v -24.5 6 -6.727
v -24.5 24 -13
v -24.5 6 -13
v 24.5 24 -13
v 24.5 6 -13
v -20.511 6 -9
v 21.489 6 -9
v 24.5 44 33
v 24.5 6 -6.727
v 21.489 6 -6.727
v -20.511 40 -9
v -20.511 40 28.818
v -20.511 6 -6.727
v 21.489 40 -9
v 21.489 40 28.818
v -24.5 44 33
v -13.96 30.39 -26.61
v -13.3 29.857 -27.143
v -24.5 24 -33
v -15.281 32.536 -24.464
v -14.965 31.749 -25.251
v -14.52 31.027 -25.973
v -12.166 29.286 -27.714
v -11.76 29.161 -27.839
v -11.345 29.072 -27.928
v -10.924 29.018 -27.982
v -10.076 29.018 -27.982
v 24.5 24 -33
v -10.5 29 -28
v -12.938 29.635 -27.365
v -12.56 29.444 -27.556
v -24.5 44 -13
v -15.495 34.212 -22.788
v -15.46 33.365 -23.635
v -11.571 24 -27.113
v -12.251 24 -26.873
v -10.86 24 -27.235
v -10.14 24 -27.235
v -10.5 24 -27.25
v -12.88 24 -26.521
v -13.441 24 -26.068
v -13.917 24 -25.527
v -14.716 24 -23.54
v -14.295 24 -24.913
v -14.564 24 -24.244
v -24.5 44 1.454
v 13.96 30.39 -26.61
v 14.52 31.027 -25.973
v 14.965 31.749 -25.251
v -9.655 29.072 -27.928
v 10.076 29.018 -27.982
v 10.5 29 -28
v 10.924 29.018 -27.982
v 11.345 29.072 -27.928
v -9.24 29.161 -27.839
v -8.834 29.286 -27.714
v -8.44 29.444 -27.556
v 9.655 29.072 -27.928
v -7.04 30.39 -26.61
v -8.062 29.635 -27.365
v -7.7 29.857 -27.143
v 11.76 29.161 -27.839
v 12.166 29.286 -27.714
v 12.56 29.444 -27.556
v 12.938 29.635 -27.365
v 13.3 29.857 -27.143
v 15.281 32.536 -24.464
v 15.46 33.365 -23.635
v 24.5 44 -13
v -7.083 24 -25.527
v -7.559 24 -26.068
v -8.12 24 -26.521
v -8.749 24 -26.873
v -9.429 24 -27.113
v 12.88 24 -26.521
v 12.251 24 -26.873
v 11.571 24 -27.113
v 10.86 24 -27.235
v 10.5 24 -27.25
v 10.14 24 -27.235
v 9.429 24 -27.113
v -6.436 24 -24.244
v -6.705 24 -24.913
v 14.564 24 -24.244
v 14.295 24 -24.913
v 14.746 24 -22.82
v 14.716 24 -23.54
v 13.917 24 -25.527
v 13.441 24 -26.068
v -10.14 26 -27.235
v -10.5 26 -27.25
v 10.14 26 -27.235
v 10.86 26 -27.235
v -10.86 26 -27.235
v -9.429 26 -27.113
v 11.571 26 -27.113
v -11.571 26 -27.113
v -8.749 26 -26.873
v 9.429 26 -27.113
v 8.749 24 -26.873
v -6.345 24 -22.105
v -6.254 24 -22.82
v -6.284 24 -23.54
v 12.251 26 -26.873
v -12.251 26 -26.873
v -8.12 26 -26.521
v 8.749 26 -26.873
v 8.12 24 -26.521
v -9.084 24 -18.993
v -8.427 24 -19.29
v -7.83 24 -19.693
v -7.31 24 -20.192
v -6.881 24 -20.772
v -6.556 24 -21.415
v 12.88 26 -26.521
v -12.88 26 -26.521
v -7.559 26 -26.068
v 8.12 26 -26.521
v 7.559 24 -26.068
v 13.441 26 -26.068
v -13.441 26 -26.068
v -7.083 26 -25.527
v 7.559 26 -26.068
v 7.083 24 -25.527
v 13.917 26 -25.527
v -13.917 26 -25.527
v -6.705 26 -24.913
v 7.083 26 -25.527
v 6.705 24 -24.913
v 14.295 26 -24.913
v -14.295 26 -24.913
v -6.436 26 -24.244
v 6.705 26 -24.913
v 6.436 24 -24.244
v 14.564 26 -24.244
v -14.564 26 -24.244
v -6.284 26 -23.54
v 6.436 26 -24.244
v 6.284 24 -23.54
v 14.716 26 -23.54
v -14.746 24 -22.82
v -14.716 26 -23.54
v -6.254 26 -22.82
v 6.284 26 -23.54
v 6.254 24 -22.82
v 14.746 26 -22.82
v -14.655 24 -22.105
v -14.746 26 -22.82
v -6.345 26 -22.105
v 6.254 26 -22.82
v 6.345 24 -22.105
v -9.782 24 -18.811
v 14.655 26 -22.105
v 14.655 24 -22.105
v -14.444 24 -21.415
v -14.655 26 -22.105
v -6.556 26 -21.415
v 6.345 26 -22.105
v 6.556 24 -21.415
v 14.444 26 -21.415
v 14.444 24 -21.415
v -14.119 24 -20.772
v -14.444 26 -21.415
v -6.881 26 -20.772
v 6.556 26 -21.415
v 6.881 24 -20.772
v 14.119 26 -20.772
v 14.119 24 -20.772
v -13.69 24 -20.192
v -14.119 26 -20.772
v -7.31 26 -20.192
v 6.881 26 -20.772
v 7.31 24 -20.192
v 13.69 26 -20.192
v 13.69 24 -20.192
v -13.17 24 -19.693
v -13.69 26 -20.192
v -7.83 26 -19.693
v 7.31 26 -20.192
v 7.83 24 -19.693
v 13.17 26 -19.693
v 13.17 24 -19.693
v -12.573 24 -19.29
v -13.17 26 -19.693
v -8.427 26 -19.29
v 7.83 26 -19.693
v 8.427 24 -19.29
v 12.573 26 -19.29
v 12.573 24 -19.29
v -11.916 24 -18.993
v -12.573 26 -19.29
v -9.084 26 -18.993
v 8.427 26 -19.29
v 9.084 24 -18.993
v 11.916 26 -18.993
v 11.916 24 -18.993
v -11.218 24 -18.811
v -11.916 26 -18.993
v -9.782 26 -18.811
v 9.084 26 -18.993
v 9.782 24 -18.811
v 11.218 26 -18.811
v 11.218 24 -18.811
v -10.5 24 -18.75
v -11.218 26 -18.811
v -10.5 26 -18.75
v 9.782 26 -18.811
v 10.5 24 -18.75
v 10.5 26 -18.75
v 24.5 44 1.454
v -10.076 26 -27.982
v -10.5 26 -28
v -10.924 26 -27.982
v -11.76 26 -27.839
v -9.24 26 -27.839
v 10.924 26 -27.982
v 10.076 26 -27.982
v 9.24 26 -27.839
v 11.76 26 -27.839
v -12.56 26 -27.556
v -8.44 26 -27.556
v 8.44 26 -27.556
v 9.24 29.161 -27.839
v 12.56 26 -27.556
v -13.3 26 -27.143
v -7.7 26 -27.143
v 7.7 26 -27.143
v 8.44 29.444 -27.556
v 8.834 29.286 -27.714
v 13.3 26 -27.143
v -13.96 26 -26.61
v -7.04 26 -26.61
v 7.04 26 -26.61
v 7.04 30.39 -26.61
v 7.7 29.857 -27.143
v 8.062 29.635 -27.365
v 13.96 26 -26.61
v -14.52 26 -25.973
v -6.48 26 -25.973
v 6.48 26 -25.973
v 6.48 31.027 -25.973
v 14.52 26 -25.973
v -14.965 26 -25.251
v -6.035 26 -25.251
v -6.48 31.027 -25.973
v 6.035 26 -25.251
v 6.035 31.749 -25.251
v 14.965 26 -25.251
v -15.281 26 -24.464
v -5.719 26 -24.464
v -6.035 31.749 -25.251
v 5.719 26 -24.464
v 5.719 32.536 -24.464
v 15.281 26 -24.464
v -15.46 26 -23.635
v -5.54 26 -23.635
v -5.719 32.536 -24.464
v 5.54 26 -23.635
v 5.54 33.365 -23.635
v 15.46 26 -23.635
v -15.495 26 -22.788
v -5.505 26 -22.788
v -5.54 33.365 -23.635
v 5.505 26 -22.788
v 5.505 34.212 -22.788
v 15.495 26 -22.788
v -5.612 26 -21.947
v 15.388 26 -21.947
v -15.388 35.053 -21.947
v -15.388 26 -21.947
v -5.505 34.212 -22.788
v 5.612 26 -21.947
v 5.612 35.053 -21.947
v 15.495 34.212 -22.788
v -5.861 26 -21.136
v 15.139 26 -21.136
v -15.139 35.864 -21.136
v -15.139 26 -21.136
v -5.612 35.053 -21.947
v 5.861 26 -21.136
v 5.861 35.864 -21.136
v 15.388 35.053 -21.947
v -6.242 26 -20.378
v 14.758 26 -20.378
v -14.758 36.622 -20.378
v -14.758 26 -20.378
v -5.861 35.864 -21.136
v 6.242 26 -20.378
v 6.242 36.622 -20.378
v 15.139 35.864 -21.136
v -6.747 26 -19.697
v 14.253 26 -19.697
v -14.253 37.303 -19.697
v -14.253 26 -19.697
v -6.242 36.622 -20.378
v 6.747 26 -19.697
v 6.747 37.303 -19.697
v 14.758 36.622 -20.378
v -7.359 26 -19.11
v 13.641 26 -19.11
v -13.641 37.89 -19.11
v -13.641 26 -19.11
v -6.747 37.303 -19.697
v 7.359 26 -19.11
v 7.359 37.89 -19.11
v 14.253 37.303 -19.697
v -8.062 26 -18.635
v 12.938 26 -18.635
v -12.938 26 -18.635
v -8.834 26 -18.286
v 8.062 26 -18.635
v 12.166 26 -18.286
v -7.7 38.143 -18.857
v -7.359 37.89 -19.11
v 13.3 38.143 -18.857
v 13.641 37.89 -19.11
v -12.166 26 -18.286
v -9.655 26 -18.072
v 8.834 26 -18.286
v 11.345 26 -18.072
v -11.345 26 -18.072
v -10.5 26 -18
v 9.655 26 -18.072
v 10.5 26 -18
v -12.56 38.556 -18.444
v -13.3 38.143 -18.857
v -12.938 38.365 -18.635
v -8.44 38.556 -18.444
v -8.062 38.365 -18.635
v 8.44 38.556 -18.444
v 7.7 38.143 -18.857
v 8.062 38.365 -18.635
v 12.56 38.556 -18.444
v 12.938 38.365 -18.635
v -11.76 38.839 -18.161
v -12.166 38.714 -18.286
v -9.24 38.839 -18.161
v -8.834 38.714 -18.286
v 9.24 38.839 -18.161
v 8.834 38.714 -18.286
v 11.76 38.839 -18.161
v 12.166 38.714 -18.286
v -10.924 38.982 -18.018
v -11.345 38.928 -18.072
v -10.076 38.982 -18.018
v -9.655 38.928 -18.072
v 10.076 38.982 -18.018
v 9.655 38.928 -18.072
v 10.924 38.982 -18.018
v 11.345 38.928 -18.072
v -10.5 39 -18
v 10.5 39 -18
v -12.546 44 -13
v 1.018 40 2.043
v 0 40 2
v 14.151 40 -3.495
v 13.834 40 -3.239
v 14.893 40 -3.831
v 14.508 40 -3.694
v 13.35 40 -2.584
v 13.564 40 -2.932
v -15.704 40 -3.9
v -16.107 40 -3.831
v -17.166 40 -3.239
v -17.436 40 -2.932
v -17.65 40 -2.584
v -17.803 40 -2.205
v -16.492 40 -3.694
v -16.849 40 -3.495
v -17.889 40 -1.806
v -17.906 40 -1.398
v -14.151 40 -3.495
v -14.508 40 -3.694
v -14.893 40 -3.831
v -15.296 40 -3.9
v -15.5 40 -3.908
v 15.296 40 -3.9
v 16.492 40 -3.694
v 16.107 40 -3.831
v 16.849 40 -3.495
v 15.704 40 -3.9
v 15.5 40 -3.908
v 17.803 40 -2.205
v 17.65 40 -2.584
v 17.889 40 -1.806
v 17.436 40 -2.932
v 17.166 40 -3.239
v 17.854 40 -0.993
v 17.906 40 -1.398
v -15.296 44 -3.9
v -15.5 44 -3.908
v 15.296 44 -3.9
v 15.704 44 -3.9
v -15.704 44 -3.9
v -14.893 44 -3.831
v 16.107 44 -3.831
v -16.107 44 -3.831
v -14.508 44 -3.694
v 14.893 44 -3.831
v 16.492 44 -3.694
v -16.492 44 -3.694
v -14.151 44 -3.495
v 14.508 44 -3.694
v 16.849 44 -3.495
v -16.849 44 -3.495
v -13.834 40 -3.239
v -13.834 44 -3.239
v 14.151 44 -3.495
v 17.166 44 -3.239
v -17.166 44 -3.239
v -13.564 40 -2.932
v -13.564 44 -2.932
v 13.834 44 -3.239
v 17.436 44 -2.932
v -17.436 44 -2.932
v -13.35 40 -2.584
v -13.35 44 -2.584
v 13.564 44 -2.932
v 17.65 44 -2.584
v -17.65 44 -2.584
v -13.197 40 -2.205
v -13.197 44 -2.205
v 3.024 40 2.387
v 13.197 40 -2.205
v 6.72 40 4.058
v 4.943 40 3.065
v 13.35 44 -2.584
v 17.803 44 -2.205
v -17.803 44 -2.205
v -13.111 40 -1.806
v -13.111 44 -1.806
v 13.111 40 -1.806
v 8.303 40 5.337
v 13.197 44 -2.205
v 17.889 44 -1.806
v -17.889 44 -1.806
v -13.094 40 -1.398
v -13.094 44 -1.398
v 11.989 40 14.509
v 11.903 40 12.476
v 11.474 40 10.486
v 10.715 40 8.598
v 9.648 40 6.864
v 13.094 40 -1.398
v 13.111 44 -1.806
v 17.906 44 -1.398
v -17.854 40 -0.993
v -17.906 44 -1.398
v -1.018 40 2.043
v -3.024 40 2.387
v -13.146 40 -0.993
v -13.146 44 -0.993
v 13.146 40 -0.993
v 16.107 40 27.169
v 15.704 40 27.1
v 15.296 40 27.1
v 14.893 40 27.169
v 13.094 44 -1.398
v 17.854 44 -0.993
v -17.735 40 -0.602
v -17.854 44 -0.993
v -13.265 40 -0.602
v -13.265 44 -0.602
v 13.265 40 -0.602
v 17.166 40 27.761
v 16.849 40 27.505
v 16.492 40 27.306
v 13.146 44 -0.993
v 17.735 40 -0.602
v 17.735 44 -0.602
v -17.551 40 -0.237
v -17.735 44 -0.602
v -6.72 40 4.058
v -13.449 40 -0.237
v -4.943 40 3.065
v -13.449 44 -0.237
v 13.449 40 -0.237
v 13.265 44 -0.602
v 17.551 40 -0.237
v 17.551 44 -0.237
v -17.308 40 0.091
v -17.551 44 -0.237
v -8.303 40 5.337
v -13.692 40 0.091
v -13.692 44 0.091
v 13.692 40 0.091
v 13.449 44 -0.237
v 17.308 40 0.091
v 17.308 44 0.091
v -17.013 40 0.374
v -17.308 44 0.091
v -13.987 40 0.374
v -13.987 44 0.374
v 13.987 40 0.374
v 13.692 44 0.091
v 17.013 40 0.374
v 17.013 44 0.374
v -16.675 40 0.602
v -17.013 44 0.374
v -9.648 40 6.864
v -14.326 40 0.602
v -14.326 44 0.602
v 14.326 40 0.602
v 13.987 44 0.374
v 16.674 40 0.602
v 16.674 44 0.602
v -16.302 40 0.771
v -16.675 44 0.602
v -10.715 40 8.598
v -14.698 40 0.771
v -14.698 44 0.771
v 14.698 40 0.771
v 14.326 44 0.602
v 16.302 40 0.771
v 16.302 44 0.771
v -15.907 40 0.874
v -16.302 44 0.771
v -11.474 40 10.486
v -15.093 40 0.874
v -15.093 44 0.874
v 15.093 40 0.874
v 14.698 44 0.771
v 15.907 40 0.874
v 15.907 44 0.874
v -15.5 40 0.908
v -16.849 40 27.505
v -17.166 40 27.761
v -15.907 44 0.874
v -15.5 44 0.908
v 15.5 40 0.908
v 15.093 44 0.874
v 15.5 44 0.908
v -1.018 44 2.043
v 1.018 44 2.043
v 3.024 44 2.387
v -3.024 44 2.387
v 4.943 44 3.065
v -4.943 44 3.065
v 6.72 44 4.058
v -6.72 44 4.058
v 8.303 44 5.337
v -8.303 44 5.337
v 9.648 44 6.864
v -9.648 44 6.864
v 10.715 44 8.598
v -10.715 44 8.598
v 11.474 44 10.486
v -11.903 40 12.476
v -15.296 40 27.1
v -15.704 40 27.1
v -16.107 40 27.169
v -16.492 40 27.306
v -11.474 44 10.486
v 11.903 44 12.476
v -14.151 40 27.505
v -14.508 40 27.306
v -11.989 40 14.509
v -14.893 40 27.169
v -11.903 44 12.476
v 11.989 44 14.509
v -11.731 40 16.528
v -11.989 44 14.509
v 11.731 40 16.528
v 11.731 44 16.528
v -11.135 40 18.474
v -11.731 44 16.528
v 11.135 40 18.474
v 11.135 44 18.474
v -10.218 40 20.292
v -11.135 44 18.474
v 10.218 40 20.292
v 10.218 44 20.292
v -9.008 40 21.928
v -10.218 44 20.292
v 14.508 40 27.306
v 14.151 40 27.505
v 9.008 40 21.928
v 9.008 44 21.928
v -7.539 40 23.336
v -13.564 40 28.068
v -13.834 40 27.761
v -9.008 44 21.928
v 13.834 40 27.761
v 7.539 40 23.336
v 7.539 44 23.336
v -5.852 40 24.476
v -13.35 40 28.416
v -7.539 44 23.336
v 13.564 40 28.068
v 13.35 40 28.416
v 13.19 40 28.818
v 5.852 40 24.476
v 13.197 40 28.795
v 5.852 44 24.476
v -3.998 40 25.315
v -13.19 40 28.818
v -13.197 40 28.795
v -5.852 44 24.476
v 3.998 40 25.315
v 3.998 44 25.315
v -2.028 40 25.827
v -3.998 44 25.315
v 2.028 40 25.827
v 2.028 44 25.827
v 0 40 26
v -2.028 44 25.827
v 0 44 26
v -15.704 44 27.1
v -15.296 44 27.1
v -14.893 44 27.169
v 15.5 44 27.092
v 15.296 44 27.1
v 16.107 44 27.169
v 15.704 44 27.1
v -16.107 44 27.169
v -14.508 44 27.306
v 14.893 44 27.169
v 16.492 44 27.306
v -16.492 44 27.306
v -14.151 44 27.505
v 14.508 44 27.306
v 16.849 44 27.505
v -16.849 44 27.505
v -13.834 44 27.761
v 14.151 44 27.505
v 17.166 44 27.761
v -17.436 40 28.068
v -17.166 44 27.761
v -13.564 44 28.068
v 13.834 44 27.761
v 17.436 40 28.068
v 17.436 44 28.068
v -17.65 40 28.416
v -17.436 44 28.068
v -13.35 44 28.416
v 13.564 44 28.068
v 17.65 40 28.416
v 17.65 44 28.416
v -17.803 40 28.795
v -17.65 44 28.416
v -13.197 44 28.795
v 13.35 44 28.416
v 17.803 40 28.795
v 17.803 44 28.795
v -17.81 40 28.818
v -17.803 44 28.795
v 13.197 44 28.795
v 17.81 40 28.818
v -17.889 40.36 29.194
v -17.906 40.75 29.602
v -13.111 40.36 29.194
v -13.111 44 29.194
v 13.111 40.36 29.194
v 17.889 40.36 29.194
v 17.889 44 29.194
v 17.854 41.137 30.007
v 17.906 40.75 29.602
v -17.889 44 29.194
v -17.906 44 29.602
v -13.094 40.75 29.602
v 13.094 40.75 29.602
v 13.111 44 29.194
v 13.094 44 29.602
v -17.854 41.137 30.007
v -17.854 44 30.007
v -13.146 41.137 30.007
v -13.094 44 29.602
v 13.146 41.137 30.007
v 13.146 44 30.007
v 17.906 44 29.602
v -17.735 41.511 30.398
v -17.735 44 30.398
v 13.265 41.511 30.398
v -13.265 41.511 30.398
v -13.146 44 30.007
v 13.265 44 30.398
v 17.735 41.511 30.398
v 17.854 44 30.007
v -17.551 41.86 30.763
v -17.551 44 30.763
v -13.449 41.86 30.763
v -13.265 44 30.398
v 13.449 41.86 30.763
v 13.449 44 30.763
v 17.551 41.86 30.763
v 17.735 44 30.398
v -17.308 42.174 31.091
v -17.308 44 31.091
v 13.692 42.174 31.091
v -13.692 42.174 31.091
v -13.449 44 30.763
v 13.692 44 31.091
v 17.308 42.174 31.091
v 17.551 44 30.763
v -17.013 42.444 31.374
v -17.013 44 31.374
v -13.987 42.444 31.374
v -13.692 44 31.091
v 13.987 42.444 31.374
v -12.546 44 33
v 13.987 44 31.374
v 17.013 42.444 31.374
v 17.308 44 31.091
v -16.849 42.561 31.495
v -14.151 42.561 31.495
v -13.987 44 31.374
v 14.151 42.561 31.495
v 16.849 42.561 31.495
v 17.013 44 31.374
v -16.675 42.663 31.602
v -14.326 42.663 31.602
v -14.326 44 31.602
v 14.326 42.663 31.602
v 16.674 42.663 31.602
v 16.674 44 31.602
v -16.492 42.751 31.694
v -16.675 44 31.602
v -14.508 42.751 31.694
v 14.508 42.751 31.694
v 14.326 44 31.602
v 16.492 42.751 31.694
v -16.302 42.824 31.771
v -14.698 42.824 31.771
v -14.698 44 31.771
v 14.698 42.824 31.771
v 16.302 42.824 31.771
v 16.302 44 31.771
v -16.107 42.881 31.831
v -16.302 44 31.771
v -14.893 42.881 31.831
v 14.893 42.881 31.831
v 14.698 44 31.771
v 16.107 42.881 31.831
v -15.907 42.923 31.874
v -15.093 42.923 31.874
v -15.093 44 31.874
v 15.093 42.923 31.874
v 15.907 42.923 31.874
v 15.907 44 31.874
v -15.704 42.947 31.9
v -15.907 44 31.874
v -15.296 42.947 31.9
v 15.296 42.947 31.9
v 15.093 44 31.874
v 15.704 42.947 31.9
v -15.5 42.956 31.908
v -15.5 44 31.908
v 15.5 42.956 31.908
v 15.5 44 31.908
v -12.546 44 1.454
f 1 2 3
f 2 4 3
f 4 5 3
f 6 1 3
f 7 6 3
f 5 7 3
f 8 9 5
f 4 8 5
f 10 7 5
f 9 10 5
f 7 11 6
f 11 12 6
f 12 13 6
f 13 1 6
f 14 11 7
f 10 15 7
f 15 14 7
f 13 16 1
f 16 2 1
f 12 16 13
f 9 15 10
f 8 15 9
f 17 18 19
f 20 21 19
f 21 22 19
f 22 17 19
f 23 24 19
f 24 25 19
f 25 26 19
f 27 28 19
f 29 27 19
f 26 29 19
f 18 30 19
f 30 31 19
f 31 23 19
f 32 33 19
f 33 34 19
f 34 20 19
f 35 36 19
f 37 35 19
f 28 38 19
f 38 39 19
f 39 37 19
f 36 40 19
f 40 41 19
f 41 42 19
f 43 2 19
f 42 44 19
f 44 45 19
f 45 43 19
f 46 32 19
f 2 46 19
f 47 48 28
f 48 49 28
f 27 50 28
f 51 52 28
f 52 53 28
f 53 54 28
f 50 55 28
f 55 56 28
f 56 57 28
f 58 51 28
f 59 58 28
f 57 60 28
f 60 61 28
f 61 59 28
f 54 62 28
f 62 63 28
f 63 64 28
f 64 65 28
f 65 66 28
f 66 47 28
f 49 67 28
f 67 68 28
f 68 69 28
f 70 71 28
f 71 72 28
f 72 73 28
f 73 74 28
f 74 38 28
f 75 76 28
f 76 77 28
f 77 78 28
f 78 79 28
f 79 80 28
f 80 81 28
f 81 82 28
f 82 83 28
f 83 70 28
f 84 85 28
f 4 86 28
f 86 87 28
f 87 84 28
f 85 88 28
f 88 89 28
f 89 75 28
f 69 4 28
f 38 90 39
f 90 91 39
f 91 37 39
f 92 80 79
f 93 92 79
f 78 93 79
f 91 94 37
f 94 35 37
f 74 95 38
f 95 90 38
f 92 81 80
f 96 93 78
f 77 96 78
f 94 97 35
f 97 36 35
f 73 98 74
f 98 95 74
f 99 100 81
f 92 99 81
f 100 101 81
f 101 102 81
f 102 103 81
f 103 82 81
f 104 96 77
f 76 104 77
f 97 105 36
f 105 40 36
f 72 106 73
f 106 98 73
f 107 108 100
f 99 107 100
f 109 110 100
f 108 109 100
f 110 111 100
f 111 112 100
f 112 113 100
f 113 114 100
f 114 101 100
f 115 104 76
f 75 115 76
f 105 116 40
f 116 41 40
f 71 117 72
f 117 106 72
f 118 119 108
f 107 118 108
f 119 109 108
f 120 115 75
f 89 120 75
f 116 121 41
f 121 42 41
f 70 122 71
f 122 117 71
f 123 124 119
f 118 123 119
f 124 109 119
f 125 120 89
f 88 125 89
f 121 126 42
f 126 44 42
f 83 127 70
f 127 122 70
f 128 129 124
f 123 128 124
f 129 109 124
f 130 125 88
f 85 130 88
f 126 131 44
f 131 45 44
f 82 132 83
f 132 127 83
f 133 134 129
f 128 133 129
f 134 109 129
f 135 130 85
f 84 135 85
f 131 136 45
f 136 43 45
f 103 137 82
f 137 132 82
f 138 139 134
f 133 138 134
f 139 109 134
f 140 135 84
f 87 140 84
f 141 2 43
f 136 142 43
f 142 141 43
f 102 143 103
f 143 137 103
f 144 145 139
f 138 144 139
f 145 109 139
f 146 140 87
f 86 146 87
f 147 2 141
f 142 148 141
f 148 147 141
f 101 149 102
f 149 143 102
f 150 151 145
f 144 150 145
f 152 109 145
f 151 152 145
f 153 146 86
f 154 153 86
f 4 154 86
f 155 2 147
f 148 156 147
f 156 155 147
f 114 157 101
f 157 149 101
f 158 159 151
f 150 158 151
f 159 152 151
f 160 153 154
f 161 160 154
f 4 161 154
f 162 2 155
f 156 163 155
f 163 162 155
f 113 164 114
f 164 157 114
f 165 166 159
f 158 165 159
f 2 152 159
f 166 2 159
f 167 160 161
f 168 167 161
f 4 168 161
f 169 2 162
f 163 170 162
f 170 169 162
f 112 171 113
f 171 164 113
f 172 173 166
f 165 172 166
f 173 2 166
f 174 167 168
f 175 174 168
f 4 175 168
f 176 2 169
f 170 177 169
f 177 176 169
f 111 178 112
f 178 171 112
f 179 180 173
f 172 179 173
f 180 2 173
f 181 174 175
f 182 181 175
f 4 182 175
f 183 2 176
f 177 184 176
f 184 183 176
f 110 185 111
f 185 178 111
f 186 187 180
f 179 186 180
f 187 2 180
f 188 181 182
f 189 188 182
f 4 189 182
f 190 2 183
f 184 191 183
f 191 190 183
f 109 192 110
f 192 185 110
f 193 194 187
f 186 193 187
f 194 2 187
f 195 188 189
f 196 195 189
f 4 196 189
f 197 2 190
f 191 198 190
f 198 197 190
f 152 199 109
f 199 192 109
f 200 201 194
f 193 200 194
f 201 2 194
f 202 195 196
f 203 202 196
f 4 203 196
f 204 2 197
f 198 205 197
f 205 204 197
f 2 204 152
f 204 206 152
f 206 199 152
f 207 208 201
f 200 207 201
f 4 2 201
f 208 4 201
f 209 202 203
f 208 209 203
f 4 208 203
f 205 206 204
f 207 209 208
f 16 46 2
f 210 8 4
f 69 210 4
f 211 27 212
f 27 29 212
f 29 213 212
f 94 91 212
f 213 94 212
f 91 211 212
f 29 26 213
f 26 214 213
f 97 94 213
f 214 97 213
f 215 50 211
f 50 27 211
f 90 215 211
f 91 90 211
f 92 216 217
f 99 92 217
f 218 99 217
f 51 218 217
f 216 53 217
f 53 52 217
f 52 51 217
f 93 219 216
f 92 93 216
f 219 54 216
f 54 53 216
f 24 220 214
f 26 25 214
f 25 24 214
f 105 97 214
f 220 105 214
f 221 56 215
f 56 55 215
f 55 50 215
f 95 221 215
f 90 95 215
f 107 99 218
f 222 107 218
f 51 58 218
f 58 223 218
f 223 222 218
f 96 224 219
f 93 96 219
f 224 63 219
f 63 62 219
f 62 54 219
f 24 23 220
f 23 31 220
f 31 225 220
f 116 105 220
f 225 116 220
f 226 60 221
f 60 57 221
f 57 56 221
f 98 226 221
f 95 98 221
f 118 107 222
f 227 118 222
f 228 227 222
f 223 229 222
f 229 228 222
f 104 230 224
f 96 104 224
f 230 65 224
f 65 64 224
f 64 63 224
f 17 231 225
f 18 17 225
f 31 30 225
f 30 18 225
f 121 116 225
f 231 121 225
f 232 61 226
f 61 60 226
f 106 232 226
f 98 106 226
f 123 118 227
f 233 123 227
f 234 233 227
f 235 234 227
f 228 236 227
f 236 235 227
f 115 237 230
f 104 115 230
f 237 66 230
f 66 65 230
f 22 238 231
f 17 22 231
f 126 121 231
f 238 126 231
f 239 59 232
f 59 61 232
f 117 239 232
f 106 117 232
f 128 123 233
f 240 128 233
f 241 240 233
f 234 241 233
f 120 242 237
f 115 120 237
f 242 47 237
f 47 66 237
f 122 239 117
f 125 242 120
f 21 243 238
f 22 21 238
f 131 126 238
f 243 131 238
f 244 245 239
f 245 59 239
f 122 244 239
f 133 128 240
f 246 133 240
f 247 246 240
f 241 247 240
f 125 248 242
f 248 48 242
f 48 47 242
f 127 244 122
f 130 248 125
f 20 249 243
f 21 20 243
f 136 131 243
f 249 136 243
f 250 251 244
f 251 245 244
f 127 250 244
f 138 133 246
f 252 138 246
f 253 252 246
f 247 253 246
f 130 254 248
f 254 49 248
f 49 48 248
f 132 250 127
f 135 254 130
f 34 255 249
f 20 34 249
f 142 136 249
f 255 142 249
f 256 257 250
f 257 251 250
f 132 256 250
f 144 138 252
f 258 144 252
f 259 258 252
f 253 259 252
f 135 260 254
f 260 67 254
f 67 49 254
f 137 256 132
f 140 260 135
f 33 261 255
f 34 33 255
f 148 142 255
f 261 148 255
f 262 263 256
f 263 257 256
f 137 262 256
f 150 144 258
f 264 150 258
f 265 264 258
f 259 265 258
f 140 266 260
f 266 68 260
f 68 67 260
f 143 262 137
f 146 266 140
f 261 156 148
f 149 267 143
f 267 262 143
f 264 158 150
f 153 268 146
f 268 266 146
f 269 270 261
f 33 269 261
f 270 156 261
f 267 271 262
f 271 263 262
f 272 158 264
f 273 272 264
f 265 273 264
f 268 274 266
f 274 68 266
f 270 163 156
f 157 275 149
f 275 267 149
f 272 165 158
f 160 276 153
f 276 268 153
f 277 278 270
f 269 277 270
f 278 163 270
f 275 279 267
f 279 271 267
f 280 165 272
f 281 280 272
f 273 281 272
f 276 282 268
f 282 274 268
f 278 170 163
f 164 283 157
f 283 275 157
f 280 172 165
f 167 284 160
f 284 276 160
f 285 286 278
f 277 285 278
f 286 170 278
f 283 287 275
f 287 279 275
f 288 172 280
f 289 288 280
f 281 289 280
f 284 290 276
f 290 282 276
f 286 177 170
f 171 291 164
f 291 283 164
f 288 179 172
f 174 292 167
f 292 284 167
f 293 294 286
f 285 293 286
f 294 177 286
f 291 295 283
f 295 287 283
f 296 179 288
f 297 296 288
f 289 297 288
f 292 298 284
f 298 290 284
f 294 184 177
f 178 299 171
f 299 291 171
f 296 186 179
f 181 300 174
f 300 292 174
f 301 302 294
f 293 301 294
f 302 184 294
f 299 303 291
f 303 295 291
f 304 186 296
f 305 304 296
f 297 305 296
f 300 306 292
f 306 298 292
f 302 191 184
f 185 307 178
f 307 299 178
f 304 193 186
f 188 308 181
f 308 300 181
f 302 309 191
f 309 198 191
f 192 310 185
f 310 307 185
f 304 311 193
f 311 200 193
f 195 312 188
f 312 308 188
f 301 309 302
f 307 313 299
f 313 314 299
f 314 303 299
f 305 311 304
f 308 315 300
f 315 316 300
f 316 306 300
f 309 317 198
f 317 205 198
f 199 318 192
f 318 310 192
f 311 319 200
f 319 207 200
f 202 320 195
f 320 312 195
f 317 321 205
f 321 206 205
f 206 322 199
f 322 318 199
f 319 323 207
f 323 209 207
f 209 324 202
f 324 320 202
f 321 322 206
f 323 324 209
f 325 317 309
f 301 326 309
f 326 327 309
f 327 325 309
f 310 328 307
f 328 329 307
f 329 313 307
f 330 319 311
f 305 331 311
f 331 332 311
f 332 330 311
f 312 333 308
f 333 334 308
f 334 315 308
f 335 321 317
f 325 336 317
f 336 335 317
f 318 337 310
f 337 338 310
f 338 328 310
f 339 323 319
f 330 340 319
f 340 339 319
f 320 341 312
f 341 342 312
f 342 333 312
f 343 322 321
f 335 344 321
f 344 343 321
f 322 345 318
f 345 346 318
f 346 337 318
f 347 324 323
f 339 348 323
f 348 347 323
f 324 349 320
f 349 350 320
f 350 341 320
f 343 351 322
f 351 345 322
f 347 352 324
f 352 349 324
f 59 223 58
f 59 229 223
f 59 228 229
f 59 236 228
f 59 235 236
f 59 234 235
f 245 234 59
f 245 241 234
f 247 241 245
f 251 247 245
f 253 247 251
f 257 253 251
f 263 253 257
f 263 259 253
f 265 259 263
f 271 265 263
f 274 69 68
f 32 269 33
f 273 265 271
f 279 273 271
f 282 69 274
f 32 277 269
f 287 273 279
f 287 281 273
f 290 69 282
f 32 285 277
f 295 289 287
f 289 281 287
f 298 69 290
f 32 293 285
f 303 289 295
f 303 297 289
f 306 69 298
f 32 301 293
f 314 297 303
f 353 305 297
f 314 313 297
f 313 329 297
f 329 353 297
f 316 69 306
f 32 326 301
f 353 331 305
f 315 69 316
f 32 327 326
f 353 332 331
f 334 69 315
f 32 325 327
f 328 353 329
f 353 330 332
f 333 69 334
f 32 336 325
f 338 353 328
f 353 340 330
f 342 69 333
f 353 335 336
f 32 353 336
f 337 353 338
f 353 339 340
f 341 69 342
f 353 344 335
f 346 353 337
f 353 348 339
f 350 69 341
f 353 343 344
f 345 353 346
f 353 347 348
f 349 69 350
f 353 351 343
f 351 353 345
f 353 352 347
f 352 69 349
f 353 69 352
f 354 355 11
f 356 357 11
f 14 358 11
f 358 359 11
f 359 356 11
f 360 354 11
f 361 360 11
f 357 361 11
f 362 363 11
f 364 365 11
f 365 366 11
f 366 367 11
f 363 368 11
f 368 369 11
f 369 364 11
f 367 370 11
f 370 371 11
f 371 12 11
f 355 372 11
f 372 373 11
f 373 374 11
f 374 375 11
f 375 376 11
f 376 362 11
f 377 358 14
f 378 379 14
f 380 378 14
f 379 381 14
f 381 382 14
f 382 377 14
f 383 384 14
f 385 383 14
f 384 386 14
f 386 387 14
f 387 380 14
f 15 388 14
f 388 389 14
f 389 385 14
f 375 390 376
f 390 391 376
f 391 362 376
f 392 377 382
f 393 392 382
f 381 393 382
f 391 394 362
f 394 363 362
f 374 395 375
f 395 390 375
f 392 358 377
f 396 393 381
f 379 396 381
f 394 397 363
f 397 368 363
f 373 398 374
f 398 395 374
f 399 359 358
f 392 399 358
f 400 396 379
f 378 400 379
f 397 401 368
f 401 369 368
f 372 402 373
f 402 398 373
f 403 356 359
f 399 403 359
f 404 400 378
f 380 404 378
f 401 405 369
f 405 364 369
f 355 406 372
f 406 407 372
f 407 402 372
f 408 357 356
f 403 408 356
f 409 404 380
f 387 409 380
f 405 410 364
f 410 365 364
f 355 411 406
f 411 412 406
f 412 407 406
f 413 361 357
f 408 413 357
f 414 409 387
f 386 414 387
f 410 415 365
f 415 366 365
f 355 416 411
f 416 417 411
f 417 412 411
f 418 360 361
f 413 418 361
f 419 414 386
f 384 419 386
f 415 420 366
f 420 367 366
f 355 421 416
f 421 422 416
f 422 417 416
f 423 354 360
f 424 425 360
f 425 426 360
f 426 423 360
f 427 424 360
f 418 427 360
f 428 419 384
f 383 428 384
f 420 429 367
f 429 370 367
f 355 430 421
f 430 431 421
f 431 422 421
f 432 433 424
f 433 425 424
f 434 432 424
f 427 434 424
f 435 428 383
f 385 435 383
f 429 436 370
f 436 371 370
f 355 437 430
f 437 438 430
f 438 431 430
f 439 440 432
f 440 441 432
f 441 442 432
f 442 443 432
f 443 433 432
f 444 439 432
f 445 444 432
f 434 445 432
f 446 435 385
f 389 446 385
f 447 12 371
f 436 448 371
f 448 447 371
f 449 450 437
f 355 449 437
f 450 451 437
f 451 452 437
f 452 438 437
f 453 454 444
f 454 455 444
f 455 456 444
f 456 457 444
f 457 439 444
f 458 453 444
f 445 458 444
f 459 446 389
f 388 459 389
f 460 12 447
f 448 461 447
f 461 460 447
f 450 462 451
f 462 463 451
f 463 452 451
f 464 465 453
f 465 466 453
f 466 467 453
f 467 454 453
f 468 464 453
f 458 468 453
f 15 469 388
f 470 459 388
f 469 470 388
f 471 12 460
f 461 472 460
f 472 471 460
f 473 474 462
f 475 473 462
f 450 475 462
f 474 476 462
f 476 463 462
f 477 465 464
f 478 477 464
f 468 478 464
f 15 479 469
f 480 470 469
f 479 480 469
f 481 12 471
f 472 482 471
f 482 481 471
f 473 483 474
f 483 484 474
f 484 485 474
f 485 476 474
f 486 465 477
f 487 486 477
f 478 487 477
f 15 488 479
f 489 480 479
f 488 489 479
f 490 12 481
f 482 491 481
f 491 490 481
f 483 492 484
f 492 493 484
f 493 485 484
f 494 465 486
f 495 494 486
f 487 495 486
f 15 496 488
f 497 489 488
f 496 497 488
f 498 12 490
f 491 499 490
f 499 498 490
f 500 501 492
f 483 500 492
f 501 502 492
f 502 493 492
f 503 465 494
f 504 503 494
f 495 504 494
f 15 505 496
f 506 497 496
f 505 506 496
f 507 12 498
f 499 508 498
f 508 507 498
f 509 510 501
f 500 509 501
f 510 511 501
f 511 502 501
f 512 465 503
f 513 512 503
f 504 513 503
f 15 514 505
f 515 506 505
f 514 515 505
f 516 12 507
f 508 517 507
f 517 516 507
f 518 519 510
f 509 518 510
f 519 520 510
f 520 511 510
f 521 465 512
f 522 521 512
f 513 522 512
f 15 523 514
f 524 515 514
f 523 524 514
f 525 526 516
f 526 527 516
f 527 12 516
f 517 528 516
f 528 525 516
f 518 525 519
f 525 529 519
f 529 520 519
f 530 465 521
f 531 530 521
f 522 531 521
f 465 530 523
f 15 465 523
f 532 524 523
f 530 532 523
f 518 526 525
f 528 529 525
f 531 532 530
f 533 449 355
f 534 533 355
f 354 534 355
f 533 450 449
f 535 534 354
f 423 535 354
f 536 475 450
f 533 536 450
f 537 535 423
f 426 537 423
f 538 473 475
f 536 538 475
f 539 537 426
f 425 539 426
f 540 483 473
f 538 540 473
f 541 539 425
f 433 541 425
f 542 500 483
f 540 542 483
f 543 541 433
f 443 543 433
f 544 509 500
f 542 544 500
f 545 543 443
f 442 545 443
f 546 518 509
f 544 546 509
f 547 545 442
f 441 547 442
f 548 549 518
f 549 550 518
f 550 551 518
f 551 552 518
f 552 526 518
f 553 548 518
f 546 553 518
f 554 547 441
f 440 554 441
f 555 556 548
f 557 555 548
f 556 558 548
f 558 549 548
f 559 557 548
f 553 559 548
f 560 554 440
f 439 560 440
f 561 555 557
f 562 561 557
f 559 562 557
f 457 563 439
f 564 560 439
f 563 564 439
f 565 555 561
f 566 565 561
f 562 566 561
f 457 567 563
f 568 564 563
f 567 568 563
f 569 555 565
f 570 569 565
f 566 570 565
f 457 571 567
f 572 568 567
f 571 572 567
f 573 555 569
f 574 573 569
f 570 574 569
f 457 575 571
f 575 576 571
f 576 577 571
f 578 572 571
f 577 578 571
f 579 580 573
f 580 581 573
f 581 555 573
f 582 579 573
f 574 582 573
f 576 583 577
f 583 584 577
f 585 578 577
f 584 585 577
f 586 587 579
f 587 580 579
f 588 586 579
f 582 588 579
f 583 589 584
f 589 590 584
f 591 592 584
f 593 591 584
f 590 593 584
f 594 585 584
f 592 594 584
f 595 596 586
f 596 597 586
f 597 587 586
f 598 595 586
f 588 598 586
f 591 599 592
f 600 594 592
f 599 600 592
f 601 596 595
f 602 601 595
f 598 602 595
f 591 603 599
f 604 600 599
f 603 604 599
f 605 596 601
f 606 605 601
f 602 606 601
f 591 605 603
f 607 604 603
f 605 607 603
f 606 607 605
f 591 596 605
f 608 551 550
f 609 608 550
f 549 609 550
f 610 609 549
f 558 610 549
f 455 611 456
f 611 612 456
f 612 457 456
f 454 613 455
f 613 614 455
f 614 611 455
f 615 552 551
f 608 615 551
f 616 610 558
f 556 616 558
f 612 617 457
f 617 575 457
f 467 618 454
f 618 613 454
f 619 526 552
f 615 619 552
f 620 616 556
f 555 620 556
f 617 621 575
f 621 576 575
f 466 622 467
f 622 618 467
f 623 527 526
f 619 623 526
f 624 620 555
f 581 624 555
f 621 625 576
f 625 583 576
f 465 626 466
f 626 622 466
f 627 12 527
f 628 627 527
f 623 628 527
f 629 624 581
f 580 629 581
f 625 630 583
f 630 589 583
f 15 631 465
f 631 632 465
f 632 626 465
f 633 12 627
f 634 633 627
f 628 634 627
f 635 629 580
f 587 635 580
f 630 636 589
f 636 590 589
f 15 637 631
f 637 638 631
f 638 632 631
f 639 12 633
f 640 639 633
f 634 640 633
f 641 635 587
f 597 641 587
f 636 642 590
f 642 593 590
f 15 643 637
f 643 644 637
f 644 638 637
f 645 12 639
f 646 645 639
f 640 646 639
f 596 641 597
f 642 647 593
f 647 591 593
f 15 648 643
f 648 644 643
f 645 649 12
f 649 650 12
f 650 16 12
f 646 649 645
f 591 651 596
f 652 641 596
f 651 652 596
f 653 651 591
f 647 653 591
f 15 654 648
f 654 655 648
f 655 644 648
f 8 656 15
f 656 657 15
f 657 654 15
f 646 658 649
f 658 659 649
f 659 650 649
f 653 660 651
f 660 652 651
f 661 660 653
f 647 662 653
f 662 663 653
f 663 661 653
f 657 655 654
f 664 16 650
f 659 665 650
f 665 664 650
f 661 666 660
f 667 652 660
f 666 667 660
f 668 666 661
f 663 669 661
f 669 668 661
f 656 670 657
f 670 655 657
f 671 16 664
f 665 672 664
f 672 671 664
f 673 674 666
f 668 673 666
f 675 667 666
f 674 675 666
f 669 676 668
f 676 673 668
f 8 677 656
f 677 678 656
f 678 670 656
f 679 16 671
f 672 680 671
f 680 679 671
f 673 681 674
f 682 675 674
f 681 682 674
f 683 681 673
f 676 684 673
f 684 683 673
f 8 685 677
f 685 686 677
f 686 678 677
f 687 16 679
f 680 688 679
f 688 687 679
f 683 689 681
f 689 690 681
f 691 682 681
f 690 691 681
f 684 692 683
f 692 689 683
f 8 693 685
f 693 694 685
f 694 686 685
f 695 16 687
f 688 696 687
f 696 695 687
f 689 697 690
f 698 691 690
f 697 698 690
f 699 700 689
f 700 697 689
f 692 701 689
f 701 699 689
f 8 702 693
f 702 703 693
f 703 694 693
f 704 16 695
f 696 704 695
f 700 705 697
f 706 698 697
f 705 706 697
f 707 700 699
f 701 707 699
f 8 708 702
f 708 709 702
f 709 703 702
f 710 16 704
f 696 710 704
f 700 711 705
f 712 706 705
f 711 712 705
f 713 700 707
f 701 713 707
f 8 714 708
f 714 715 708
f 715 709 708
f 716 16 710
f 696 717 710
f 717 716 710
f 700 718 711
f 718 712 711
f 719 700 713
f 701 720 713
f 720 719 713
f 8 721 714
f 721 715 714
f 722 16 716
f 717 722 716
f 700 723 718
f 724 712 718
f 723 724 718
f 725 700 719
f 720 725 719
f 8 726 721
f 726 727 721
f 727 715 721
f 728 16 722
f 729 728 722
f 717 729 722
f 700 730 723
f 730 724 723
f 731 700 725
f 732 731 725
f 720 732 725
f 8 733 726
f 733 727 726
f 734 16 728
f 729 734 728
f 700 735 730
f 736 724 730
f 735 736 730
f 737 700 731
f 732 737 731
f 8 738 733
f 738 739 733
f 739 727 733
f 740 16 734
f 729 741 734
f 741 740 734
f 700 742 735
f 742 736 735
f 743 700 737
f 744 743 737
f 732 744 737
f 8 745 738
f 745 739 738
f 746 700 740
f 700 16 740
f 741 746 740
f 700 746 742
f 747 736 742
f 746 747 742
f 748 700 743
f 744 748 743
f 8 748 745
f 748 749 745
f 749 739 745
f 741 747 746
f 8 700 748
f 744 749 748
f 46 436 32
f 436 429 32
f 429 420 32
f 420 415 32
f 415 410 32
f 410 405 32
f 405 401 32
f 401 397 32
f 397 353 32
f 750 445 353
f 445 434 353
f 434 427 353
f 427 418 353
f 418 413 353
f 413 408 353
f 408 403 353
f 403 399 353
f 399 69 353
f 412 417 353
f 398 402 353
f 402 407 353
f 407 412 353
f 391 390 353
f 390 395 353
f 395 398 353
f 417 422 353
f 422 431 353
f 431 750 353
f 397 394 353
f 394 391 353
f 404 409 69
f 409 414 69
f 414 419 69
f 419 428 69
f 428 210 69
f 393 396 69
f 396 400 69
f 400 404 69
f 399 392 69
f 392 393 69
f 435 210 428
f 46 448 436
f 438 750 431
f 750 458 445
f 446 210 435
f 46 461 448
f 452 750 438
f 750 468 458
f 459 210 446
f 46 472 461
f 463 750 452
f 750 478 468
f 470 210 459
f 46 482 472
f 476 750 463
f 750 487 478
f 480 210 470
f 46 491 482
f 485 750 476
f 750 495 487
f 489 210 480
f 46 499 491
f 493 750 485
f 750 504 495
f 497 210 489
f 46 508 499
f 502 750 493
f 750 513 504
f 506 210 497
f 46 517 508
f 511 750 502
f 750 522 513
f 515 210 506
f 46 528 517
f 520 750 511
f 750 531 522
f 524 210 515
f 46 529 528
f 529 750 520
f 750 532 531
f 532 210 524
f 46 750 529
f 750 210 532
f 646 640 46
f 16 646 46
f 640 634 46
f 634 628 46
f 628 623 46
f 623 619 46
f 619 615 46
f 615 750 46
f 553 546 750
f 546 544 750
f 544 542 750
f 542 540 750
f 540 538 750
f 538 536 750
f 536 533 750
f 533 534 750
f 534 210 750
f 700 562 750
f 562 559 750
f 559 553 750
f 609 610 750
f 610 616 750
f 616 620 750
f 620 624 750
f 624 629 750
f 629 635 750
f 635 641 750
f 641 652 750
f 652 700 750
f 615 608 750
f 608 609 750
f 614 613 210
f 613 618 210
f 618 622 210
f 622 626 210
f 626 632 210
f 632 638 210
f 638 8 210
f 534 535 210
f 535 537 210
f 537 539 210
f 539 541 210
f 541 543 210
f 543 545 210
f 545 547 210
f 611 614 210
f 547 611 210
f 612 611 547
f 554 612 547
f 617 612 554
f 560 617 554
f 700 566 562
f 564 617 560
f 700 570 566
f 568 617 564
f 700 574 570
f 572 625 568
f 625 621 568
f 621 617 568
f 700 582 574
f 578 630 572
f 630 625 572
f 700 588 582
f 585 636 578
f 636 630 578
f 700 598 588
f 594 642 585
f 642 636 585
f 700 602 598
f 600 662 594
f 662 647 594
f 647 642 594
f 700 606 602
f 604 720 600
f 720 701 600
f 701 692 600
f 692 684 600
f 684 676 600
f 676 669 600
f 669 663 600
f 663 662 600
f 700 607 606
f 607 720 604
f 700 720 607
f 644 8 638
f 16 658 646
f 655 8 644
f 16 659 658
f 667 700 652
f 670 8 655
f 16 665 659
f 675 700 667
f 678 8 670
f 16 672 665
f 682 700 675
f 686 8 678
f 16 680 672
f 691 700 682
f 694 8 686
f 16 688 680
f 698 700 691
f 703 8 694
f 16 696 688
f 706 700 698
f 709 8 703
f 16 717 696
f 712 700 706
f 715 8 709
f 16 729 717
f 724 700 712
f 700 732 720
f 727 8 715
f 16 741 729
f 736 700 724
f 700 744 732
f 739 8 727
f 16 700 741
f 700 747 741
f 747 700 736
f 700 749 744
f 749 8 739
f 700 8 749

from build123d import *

# Parameters (mm, degrees)
SKETCH_1_W          = 49
SKETCH_1_H          = 66
EXTRUDE_1_DEPTH     = 44
SKETCH_2_W          = 42
SKETCH_2_H          = 40
CUT_EXTRUDE_1_DEPTH = 42
SKETCH_3_W          = 20
SKETCH_3_H          = 24
CUT_EXTRUDE_2_DEPTH = 50
SKETCH_5_R          = 12
SKETCH_5_R_2        = 2.408268243
SKETCH_5_R_3        = 4.25
CUT_EXTRUDE_3_DEPTH = 50
SKETCH_7_R          = 5
CUT_EXTRUDE_4_DEPTH = 18
SKETCH_8_W          = 49
SKETCH_8_H          = 6
CUT_EXTRUDE_5_DEPTH = 18


with BuildPart() as part:
    # 草圖1 → 填料-伸長1 (new body)
    with BuildSketch(Plane(origin=(0, 0, 0), x_dir=(1, 0, 0), z_dir=(0, 1, 0))):
        Rectangle(SKETCH_1_W, SKETCH_1_H)
    extrude(amount=EXTRUDE_1_DEPTH)

    # 草圖2 → 除料-伸長1 (cut)
    with BuildSketch(Plane.XY.offset(33)):
        with Locations((0.48895233, 20)):
            Rectangle(SKETCH_2_W, SKETCH_2_H)
    extrude(amount=-CUT_EXTRUDE_1_DEPTH, mode=Mode.SUBTRACT)

    # 草圖3 → 除料-伸長2 (cut)
    with BuildSketch(Plane.ZY.offset(24.5)):
        Polygon((-33, 24), (-13, 44), (-33, 44), align=None)
        with Locations((-23, 12)):
            Rectangle(SKETCH_3_W, SKETCH_3_H)
        Polygon((33, 0), (33, 44), (-13, 0), align=None)
    extrude(amount=-CUT_EXTRUDE_2_DEPTH, mode=Mode.SUBTRACT)

    # 草圖5 → 除料-伸長3 (cut)
    with BuildSketch(Plane(origin=(0, 44, 0), x_dir=(1, 0, 0), z_dir=(0, 1, 0))):
        with Locations((0, -14)):
            Circle(SKETCH_5_R)
        with Locations((15.5, 1.5)):
            Circle(SKETCH_5_R_2)
        with Locations((10.5, 23)):
            Circle(SKETCH_5_R_3)
        with Locations((-10.5, 23)):
            Circle(SKETCH_5_R_3)
        with Locations((15.5, -29.5)):
            Circle(SKETCH_5_R_2)
        with Locations((-15.5, -29.5)):
            Circle(SKETCH_5_R_2)
        with Locations((-15.5, 1.5)):
            Circle(SKETCH_5_R_2)
    extrude(amount=-CUT_EXTRUDE_3_DEPTH, mode=Mode.SUBTRACT)

    # 草圖7 → 除料-伸長4 (cut)
    with BuildSketch(Plane(origin=(0, 44, 0), x_dir=(1, 0, 0), z_dir=(0, 1, 0))):
        with Locations((10.5, 23)):
            Circle(SKETCH_7_R)
        with Locations((-10.5, 23)):
            Circle(SKETCH_7_R)
    extrude(amount=-CUT_EXTRUDE_4_DEPTH, mode=Mode.SUBTRACT)

    # 草圖8 → 除料-伸長5 (cut)
    with BuildSketch(Plane(origin=(0, 0, -13), x_dir=(-1, 0, 0), z_dir=(0, 0, -1))):
        with Locations((0, 3)):
            Rectangle(SKETCH_8_W, SKETCH_8_H)
    extrude(amount=-CUT_EXTRUDE_5_DEPTH, mode=Mode.SUBTRACT)


solid = part.part
